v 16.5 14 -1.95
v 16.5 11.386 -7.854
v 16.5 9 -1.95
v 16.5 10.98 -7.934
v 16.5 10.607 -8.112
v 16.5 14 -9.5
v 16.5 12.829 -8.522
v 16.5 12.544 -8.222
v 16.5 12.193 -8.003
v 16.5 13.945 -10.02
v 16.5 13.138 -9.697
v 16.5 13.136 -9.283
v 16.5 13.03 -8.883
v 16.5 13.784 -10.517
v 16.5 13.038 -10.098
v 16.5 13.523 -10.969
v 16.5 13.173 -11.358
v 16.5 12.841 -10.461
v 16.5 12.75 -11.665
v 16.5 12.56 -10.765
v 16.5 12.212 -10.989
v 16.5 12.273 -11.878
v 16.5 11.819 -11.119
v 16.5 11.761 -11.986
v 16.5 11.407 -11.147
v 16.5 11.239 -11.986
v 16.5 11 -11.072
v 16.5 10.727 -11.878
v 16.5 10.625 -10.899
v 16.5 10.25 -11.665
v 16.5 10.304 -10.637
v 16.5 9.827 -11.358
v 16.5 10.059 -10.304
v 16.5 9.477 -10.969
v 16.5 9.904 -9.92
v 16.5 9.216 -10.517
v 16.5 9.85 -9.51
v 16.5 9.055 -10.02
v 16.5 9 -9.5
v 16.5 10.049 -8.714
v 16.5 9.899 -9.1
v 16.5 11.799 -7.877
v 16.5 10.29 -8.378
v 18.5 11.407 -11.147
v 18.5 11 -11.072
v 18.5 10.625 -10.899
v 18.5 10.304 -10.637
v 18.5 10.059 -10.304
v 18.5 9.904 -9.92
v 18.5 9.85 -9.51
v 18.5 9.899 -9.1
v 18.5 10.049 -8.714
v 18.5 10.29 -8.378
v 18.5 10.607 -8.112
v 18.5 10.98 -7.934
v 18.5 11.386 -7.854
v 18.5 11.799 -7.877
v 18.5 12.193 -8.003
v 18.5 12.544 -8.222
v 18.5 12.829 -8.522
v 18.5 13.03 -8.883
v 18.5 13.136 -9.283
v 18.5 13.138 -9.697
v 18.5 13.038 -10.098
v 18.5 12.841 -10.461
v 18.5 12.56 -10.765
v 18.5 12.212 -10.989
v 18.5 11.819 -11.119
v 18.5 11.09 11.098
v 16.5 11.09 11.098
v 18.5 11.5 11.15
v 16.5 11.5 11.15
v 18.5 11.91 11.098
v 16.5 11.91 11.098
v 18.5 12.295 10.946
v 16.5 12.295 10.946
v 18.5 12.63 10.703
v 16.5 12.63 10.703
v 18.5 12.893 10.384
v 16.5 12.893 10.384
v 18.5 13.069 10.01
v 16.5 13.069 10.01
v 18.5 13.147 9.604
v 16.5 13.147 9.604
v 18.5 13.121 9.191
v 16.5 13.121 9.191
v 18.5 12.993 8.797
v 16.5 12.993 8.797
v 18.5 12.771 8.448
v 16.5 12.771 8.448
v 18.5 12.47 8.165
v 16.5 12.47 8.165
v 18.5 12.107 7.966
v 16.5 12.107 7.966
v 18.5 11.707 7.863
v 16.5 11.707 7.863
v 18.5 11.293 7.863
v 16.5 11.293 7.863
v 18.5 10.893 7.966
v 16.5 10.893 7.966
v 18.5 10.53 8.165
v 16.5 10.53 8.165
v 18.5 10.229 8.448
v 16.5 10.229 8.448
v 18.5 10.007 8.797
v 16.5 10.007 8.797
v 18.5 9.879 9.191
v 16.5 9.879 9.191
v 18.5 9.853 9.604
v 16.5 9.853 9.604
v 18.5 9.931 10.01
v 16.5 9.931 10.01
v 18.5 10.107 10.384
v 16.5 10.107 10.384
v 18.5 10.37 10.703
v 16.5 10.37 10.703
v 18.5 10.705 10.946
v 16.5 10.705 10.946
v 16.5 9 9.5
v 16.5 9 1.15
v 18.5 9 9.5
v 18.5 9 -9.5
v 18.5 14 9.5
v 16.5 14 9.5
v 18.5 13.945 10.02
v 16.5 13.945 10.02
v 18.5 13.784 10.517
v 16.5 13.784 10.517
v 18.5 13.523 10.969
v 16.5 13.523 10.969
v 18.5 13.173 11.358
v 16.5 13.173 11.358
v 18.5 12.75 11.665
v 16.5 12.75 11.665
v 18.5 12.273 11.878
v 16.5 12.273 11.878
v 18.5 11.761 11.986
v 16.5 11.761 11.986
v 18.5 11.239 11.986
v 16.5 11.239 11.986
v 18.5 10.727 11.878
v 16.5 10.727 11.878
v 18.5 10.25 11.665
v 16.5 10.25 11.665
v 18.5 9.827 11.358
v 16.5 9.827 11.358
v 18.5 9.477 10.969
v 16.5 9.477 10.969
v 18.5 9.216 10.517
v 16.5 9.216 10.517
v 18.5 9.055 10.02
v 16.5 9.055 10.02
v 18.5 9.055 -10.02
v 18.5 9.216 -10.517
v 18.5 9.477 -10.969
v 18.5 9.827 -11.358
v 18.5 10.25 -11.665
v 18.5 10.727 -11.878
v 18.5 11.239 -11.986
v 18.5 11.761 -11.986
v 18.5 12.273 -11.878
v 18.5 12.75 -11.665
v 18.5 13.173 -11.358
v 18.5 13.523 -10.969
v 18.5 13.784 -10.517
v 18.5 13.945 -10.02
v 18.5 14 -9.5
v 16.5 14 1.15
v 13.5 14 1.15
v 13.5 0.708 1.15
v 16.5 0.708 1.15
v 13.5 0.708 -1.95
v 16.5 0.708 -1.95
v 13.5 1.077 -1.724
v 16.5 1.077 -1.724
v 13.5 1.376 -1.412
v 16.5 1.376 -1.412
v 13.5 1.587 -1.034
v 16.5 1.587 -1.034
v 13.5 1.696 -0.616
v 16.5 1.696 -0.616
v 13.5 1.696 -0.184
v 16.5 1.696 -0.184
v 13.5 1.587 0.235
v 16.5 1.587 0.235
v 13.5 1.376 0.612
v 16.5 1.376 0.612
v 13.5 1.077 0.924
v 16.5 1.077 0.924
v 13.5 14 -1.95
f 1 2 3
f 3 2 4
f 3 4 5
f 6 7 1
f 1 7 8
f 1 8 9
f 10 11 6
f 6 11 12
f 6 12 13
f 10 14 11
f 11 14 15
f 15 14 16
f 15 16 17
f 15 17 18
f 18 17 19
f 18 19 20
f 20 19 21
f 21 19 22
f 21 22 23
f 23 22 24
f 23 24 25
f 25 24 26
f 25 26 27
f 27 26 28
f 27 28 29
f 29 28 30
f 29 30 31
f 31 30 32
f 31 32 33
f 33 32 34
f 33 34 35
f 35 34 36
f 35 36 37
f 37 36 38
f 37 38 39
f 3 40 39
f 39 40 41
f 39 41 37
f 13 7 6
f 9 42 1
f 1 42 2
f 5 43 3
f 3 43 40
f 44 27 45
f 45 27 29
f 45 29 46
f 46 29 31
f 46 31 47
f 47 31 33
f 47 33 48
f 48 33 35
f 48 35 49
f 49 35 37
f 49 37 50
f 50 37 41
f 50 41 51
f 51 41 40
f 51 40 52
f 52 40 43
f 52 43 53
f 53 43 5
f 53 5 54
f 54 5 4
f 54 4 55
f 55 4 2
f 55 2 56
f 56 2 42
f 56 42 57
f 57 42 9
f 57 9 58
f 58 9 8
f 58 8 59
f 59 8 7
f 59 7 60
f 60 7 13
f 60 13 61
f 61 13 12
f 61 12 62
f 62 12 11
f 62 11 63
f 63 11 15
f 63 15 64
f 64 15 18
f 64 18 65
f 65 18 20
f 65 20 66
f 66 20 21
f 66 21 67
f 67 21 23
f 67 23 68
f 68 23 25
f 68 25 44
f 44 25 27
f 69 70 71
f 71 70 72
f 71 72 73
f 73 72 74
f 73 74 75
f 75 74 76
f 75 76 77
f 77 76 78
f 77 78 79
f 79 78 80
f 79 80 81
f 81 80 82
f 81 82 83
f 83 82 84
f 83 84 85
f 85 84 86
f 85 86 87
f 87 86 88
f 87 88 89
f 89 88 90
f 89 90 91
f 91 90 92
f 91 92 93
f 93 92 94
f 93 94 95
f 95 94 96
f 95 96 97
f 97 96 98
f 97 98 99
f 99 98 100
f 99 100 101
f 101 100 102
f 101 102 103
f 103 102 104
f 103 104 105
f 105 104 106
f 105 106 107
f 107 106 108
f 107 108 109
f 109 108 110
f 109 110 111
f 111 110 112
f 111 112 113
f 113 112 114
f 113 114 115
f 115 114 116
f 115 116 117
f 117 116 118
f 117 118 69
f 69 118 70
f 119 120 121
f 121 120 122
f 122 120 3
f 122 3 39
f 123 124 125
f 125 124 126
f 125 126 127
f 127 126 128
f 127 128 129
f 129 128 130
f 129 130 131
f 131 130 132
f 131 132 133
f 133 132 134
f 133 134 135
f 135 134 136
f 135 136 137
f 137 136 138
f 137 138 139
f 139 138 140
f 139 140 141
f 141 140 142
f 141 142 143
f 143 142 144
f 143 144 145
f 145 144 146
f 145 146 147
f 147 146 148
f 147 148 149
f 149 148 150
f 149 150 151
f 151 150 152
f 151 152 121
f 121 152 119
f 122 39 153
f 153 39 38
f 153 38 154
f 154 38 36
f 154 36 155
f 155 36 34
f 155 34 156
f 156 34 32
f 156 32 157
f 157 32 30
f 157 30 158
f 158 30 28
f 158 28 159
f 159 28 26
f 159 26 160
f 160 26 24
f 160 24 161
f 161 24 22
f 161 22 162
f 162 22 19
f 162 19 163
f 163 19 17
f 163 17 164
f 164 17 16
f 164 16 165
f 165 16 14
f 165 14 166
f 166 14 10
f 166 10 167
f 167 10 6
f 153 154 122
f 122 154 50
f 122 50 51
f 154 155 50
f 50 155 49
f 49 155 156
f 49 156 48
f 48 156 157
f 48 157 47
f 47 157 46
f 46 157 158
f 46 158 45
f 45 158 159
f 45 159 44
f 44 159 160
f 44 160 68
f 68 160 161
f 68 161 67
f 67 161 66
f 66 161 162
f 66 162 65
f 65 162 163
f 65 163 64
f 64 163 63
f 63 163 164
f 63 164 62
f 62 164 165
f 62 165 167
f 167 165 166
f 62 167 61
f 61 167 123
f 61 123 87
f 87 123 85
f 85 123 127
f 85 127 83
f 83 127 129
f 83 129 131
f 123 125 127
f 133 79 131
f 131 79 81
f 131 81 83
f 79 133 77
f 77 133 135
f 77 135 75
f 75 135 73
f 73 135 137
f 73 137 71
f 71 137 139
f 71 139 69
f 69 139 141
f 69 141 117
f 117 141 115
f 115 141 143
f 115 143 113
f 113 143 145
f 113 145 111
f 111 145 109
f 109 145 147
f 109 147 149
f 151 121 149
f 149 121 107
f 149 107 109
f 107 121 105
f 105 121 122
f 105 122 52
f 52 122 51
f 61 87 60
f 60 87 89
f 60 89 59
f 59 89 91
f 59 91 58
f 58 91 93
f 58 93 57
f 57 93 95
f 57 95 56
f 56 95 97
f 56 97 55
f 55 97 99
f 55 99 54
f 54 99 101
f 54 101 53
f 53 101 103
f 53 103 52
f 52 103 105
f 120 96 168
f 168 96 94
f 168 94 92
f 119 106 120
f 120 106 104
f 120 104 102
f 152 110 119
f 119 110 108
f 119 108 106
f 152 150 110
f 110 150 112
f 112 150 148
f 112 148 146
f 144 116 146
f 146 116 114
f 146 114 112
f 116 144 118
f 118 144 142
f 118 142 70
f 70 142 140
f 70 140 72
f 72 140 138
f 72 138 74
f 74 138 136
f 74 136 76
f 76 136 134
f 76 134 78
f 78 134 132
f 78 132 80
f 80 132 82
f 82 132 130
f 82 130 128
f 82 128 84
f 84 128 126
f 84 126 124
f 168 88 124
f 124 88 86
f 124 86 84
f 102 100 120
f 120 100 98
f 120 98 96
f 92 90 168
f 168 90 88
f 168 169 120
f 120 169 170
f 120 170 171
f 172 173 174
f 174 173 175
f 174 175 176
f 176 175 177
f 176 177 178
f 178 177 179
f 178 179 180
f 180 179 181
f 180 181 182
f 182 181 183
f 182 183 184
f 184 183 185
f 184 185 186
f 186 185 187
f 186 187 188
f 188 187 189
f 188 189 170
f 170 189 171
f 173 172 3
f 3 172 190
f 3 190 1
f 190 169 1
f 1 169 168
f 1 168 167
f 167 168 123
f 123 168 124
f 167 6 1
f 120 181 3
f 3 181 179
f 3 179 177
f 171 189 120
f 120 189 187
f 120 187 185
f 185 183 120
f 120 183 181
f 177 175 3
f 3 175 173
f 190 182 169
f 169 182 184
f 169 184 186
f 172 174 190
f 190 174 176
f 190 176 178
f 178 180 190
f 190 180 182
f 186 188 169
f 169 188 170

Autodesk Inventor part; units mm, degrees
ref_plane "YZ Plane" through (0, 0, 0) normal (1, 0, 0) x (0, 1, 0)
ref_plane "XZ Plane" through (0, 0, 0) normal (0, 1, 0) x (-1, 0, 0)
ref_plane "XY Plane" through (0, 0, 0) normal (0, 0, 1) x (1, 0, 0)
sketch "スケッチ2" plane through (0, 0, 0) normal (0, 1, 0) x (-1, 0, 0)
  line L0 (-32.5, -11.25) -> (32.5, -11.25)
  line L1 (32.5, -11.25) -> (32.5, 11.25)
  line L2 (32.5, 11.25) -> (-32.5, 11.25)
  line L3 (-32.5, 11.25) -> (-32.5, -11.25)
  line L4 (-32.5, -11.25) -> (32.5, 11.25) construction
  line L5 (32.5, -11.25) -> (-32.5, 11.25) construction
  line L6 (-30, -8.75) -> (30, -8.75)
  line L7 (30, -8.75) -> (30, 8.75)
  line L8 (30, 8.75) -> (-30, 8.75)
  line L9 (-30, 8.75) -> (-30, -8.75)
  line L10 (-30, -8.75) -> (30, 8.75) construction
  line L11 (30, -8.75) -> (-30, 8.75) construction
  circle A0 centre (30, 8.75) radius 2.5
  circle A1 centre (30, -8.75) radius 2.5
  circle A2 centre (-30, 8.75) radius 2.5
  circle A3 centre (-30, -8.75) radius 2.5
  line L12 (-115, -18.25) -> (115, -18.25)
  line L13 (115, -18.25) -> (115, 18.25)
  line L14 (115, 18.25) -> (-115, 18.25)
  line L15 (-115, 18.25) -> (-115, -18.25)
  line L16 (-115, -18.25) -> (115, 18.25) construction
  line L17 (115, -18.25) -> (-115, 18.25) construction
  line L18 (-95, -18.25) -> (95, -18.25)
  line L19 (95, -18.25) -> (95, 18.25)
  line L20 (95, 18.25) -> (-95, 18.25)
  line L21 (-95, 18.25) -> (-95, -18.25)
  line L22 (-95, -18.25) -> (95, 18.25) construction
  line L23 (95, -18.25) -> (-95, 18.25) construction
  point P0 (0, 0)
  dimension "d10" = 65
  dimension "d11" = 22.5
  dimension "d12" = 60
  dimension "d13" = 17.5
  dimension "d14" = 230
  dimension "d15" = 36.5
  dimension "d16" = 190
sketch "スケッチ4" plane through (0, 0, 0) normal (1, 0, 0) x (0, 1, 0)
  point P0 (0, 0)
sketch "スケッチ5" plane through (0, 0, 0) normal (1, 0, 0) x (0, 1, 0)
  circle A0 centre (0, 0) radius 18.25
  line L0 (0, 0) -> (0, 6)
  line L1 (0, 6) -> (0, -6)
  circle A1 centre (0, 6) radius 3
  circle A2 centre (0, -6) radius 9
  circle A3 centre (0, 6) radius 9
  circle A4 centre (0, -6) radius 3
  line L2 (0, 6) -> (5.2915, 0)
  circle A5 centre (5.2915, 0) radius 5
  circle A6 centre (5.2915, 0) radius 4.5
  circle A7 centre (5.2915, 0) radius 5.5
  line L3 (0, 0) -> (0, 11.25)
  line L4 (0, 11.25) -> (0, -11.25)
  line L5 (5.2915, 5.5) -> (5.2915, -5.5)
  line L6 (0, 11.25) -> (-1.2, 11.25)
  line L7 (-1.2, 11.25) -> (-1.2, -11.25)
  line L8 (-1.2, -11.25) -> (0, -11.25)
  line L9 (-1.2, 11.25) -> (-9.2, 11.25)
  line L10 (-1.2, -11.25) -> (-9.2, -11.25)
  line L11 (-9.2, -11.25) -> (-9.2, 11.25)
  line L12 (-9.2, 11.25) -> (-10.4, 11.25)
  line L13 (-10.4, 11.25) -> (-10.4, -11.25)
  line L14 (-10.4, -11.25) -> (-9.2, -11.25)
  circle A8 centre (0, 0) radius 16
  line L15 (0, 11.25) -> (1.5, 11.25)
  line L16 (1.5, 11.25) -> (1.5, -11.25)
  line L17 (1.5, -11.25) -> (0, -11.25)
  line L18 (5.2915, 5.5) -> (1.5, 5.5)
  line L19 (5.2915, -5.5) -> (1.5, -5.5)
  circle A9 centre (5.2915, 0) radius 6.6802
  point P0 (0, 1.5)
  point P1 (0, -1.5)
  point P2 (1.5, -3.9843)
  point P3 (1.5, 3.9843)
  dimension "d28" = 36.5
  dimension "d29" = 6
  dimension "d30" = 12
  dimension "d31" = 6
  dimension "d32" = 18
  dimension "d33" = 8
  dimension "d34" = 9
  dimension "d35" = 11
  dimension "d36" = 11.25
  dimension "d37" = 22.5
  dimension "d39" = 1.2
  dimension "d40" = 8
  dimension "d41" = 1.2
  dimension "d42" = 32
  dimension "d43" = 1.5
ref_plane "作業平面1" through (16.5, 5.2915, 0) normal (1, 0, 0) x (0, 0, 1)
sketch "スケッチ6" plane through (16.5, 5.2915, 0) normal (1, 0, 0) x (0, 0, 1)
  line L0 (0, 5.2915) -> (6, 5.2915)
  line L1 (-11.25, 5.2915) -> (11.25, 5.2915) projected
  line L2 (6, 5.2915) -> (-6, 5.2915)
  circle A0 centre (6, 5.2915) radius 1.25
  circle A1 centre (-6, 5.2915) radius 1.25
  circle A2 centre (0, 5.2915) radius 16
  circle A3 centre (0, 0) radius 5
  line L3 (0, 0) -> (0, 3)
  line L4 (0, 3) -> (0, -5.5)
  line L5 (0, 3) -> (1, 3)
  line L6 (1, 3) -> (-1, 3)
  line L7 (-1, 3) -> (-1, -5.4083)
  line L8 (1, 3) -> (1, -5.4083)
  circle A4 centre (6, 5.2915) radius 9
  circle A5 centre (-6, 5.2915) radius 9
  line L9 (0, 5.2915) -> (0, -2.7085)
  circle A6 centre (0, -2.7085) radius 8
  circle A7 centre (6, 5.2915) radius 10
  circle A8 centre (-6, 5.2915) radius 10
  line L10 (0, 5.2915) -> (0, -5.7085)
  line L11 (0, -5.7085) -> (-11.619, -5.7085)
  line L12 (0, -5.7085) -> (11.619, -5.7085)
  line L13 (0, -5.7085) -> (9.5, -5.7085)
  line L14 (9.5, -5.7085) -> (-9.5, -5.7085)
  circle A9 centre (0, 5.2915) radius 18
  line L15 (1, -5.4083) -> (1, -8.2085)
  line L16 (-1, -5.4083) -> (-1, -8.2085)
  line L17 (0, 5.2915) -> (0, 6.4915)
  line L18 (0, 6.4915) -> (0, 14.4915)
  line L19 (0, 14.4915) -> (0, 15.6915)
  line L20 (0, 15.6915) -> (-11.25, 15.6915)
  line L21 (-11.25, 15.6915) -> (11.25, 15.6915)
  line L22 (11.25, 15.6915) -> (11.25, 14.4915)
  line L23 (11.25, 14.4915) -> (0, 14.4915)
  line L24 (-11.25, 14.4915) -> (-11.25, 15.6915)
  line L25 (0, 14.4915) -> (-11.25, 14.4915)
  line L26 (0, 15.6915) -> (8.75, 15.6915)
  line L27 (8.75, 15.6915) -> (-8.75, 15.6915)
  line L28 (11.25, 15.6915) -> (11.25, 17.1915)
  line L29 (11.25, 17.1915) -> (-11.25, 17.1915)
  line L30 (-11.25, 17.1915) -> (-11.25, 15.6915)
  line L31 (6, 17.1915) -> (6, 18.6915)
  line L32 (-6, 17.1915) -> (-6, 18.6915)
  circle A10 centre (6, 18.6915) radius 2.5
  circle A11 centre (-6, 18.6915) radius 2.5
  line L33 (6, 21.1915) -> (-6, 21.1915)
  line L34 (9.5, -5.7085) -> (12, -5.7085)
  line L35 (-9.5, -5.7085) -> (-12, -5.7085)
  line L36 (6, 18.6915) -> (8.5, 18.6915)
  line L37 (-6, 18.6915) -> (-8.5, 18.6915)
  circle A12 centre (0, 0) radius 4.5
  circle A13 centre (-6, 5.2915) radius 1.5
  circle A14 centre (6, 5.2915) radius 1.5
  circle A15 centre (6, 18.6915) radius 1.65
  circle A16 centre (-6, 18.6915) radius 1.65
  line L38 (9.5, -5.7085) -> (9.5, -6.2085)
  line L39 (9.5, -6.2085) -> (-9.5, -6.2085)
  line L40 (-9.5, -6.2085) -> (-9.5, -5.7085)
  circle A17 centre (-9.5, -6.2085) radius 1.65
  circle A18 centre (9.5, -6.2085) radius 1.65
  circle A19 centre (9.5, -6.2085) radius 2.5
  circle A20 centre (-9.5, -6.2085) radius 2.5
  line L41 (-12, -6.2085) -> (-8.5, 18.6915)
  line L42 (12, -6.2085) -> (8.5, 18.6915)
  line L43 (9.5, -8.7085) -> (-9.5, -8.7085)
  line L44 (1, -8.7085) -> (1, -8.0358)
  line L45 (-1, -8.7085) -> (-1, -8.2085)
  line L46 (0, 5.2915) -> (-0.3999, 5.2815)
  circle A21 centre (-0.3999, 5.2815) radius 1.7
  line L47 (1.3001, 5.2915) -> (1.3001, -8.7085)
  line L48 (-2.0998, 5.2915) -> (-2.0998, -8.7085)
  line L49 (1.3001, -8.7085) -> (1.1501, -8.7085)
  line L50 (1.1501, -8.7085) -> (1.1501, 4.5832)
  line L51 (-2.0998, -8.7085) -> (-1.9498, -8.7085)
  line L52 (-1.9498, -8.7085) -> (-1.9498, 4.5832)
  line L53 (9.5, -3.7085) -> (-9.5, -3.7085)
  point P0 (1, -4.3875)
  point P1 (-1, -4.3875)
  point P2 (-4.4567, 20.6583)
  point P3 (-8.495, 18.8501)
  point P4 (4.4567, 20.6583)
  point P5 (8.495, 18.8501)
  point P6 (1.7861, 21.1915)
  point P7 (-1.7861, 21.1915)
  point P8 (11.9031, -5.5193)
  point P9 (11.8759, -5.4306)
  point P10 (11.8887, -5.4164)
  point P11 (1.2974, 5.1856)
  point P12 (1.3001, 5.1852)
  point P13 (-11.8759, -5.4306)
  point P14 (-11.0724, -5.7085)
  point P15 (-11.1498, -6.1838)
  point P16 (-11.9297, -5.7085)
  dimension "d54" = 6
  dimension "d55" = 12
  dimension "d56" = 2.5
  dimension "d57" = 2.5
  dimension "d58" = 32
  dimension "d59" = 10
  dimension "d60" = 3
  dimension "d61" = 1
  dimension "d62" = 2
  dimension "d65" = 18
  dimension "d66" = 18
  dimension "d67" = 8
  dimension "d68" = 11
  dimension "d69" = 9.5
  dimension "d70" = 19
  dimension "d73" = 36
  dimension "d76" = 1.2
  dimension "d77" = 8
  dimension "d78" = 1.2
  dimension "d79" = 8.75
  dimension "d80" = 17.5
  dimension "d81" = 1.5
  dimension "d82" = 1.5
  dimension "d83" = 5
  dimension "d84" = 5
  dimension "d97" = 3
  dimension "d98" = 3
  dimension "d109" = 3.3
  dimension "d110" = 3.3
  dimension "d111" = 0.5
  dimension "d112" = 3.3
  dimension "d113" = 3.3
  dimension "d114" = 5
  dimension "d115" = 5
  dimension "d125" = 0.4
  dimension "d126" = 3.4
  dimension "d127" = 0.15
  dimension "d128" = 0.15
extrude "押し出し12" add sketch "スケッチ6" against normal blind 3 contours L50 A12 A21 | A21 A12 L52 | A21 A12 L50 A5 L8 L5 L9 | L9 L6 L7 A4 L52 A12 A21 | L5 L8 A5 L4 L3 | L3 L4 A4 L7 L6 | L50 A8 L8 A5 | A4 L7 A7 L52 | L8 A8 A4 A5 | L50 A4 L8 A8 | A4 A5 A7 L7 | A7 L7 A5 L52 | A4 A8 L4 | L4 A7 A5 | L8 A4 A8 | L50 A7 L8 A4 | A7 A5 L7 | A5 L7 A8 L53 L52 | A7 L8 L53 L4 | A8 L7 A5 A7 | A8 A4 L8 A7 | L4 L53 L7 A8 | L50 L53 L8 A7 | L53 A8 L52 | L53 L8 A12 L4 | L4 A12 L7 L53 | L7 L53 A8 | L50 A12 L8 L53 | A8 L53 L7 A12 L52 | A12 L8 A3 L4 | L4 A3 L7 A12 | L52 A12 L7 A3 | A3 L7 L16 L11 L52 | L50 A3 L8 A12 | L4 L10 L11 L16 L7 A3 | A3 L8 L15 L12 L10 L4 | L50 L12 L15 L8 A3 | L11 L16 L39 L52 | L50 L39 L15 L12 | L11 L12 L15 L39 L16 | L39 L16 L45 L43 L52 | L50 L43 L44 L15 L39 | L39 L15 L44 L43 L45 L16
extrude "押し出し13" add sketch "スケッチ6" along normal blind 2 contours L53 A3 A8 A20 A6 | A6 A20 L53 | L53 A6 A19 A7 A3 | L53 A19 A6 | L53 A12 A8 A3 | A20 A8 A6 | A6 A8 A20 | A3 A7 A12 L53 | A19 A7 A6 | A6 A7 A19 | A8 A6 L11 A17 A2 A20 | A8 A12 L48 A3 | A3 L48 L11 A20 A8 | L53 L48 A8 A12 | A8 A20 L11 A6 | L53 L52 A8 L48 | L53 A8 L52 | L53 L8 A12 L4 | L4 A12 L7 L53 | A7 A19 L12 L47 A3 | A3 L47 A12 A7 | A12 A7 L53 | A19 A2 L12 A18 A6 A7 | A6 L12 A19 A7 | A7 A12 L47 L53 | L47 A12 L50 L53 | A2 L35 L41 A20 | L41 L35 A20 | L48 A12 L52 A3 | A3 L52 L11 L48 | A8 L48 A12 | L11 A20 L39 A6 | A6 L39 A17 L11 | L11 L48 L39 A20 | A8 L52 A12 L48 | L50 A12 L8 L53 | A8 L53 L7 A12 L52 | A12 L8 A3 L4 | L4 A3 L7 A12 | L47 L12 L50 A3 | A3 L50 A12 L47 | A19 L42 L34 A2 | A19 L34 L42 | L12 A18 L39 A6 | A6 L39 A19 L12 | A19 L39 L47 L12 | L11 A17 A2 | A2 A17 A20 L41 L35 | L35 L41 A20 | L52 A12 L7 A3 | A3 L7 L16 L11 L52 | L11 L52 L39 L48 | L39 A20 A6 | A6 A20 A2 A17 L39 | L39 L48 L43 A6 A20 | L50 A3 L8 A12 | L4 L10 L11 L16 L7 A3 | A3 L8 L15 L12 L10 L4 | L50 L12 L15 L8 A3 | L47 L39 L50 L12 | L34 L42 A19 A2 A18 | A2 A18 L12 | A19 L42 L34 | L39 A18 A2 A19 A6 | A6 A19 L39 | A19 A6 L43 L47 L39 | L11 L16 L39 L52 | L39 L52 L43 L48 | A6 L43 A2 A20 | L50 L39 L15 L12 | L47 L43 L50 L39 | A19 A2 L43 A6 | A20 A2 L43 | L11 L12 L15 L39 L16 | L39 L16 L45 L43 L52 | L50 L43 L44 L15 L39 | L43 A2 A19 | L39 L15 L44 L43 L45 L16
properties part number "ikafly1b0.8b"
